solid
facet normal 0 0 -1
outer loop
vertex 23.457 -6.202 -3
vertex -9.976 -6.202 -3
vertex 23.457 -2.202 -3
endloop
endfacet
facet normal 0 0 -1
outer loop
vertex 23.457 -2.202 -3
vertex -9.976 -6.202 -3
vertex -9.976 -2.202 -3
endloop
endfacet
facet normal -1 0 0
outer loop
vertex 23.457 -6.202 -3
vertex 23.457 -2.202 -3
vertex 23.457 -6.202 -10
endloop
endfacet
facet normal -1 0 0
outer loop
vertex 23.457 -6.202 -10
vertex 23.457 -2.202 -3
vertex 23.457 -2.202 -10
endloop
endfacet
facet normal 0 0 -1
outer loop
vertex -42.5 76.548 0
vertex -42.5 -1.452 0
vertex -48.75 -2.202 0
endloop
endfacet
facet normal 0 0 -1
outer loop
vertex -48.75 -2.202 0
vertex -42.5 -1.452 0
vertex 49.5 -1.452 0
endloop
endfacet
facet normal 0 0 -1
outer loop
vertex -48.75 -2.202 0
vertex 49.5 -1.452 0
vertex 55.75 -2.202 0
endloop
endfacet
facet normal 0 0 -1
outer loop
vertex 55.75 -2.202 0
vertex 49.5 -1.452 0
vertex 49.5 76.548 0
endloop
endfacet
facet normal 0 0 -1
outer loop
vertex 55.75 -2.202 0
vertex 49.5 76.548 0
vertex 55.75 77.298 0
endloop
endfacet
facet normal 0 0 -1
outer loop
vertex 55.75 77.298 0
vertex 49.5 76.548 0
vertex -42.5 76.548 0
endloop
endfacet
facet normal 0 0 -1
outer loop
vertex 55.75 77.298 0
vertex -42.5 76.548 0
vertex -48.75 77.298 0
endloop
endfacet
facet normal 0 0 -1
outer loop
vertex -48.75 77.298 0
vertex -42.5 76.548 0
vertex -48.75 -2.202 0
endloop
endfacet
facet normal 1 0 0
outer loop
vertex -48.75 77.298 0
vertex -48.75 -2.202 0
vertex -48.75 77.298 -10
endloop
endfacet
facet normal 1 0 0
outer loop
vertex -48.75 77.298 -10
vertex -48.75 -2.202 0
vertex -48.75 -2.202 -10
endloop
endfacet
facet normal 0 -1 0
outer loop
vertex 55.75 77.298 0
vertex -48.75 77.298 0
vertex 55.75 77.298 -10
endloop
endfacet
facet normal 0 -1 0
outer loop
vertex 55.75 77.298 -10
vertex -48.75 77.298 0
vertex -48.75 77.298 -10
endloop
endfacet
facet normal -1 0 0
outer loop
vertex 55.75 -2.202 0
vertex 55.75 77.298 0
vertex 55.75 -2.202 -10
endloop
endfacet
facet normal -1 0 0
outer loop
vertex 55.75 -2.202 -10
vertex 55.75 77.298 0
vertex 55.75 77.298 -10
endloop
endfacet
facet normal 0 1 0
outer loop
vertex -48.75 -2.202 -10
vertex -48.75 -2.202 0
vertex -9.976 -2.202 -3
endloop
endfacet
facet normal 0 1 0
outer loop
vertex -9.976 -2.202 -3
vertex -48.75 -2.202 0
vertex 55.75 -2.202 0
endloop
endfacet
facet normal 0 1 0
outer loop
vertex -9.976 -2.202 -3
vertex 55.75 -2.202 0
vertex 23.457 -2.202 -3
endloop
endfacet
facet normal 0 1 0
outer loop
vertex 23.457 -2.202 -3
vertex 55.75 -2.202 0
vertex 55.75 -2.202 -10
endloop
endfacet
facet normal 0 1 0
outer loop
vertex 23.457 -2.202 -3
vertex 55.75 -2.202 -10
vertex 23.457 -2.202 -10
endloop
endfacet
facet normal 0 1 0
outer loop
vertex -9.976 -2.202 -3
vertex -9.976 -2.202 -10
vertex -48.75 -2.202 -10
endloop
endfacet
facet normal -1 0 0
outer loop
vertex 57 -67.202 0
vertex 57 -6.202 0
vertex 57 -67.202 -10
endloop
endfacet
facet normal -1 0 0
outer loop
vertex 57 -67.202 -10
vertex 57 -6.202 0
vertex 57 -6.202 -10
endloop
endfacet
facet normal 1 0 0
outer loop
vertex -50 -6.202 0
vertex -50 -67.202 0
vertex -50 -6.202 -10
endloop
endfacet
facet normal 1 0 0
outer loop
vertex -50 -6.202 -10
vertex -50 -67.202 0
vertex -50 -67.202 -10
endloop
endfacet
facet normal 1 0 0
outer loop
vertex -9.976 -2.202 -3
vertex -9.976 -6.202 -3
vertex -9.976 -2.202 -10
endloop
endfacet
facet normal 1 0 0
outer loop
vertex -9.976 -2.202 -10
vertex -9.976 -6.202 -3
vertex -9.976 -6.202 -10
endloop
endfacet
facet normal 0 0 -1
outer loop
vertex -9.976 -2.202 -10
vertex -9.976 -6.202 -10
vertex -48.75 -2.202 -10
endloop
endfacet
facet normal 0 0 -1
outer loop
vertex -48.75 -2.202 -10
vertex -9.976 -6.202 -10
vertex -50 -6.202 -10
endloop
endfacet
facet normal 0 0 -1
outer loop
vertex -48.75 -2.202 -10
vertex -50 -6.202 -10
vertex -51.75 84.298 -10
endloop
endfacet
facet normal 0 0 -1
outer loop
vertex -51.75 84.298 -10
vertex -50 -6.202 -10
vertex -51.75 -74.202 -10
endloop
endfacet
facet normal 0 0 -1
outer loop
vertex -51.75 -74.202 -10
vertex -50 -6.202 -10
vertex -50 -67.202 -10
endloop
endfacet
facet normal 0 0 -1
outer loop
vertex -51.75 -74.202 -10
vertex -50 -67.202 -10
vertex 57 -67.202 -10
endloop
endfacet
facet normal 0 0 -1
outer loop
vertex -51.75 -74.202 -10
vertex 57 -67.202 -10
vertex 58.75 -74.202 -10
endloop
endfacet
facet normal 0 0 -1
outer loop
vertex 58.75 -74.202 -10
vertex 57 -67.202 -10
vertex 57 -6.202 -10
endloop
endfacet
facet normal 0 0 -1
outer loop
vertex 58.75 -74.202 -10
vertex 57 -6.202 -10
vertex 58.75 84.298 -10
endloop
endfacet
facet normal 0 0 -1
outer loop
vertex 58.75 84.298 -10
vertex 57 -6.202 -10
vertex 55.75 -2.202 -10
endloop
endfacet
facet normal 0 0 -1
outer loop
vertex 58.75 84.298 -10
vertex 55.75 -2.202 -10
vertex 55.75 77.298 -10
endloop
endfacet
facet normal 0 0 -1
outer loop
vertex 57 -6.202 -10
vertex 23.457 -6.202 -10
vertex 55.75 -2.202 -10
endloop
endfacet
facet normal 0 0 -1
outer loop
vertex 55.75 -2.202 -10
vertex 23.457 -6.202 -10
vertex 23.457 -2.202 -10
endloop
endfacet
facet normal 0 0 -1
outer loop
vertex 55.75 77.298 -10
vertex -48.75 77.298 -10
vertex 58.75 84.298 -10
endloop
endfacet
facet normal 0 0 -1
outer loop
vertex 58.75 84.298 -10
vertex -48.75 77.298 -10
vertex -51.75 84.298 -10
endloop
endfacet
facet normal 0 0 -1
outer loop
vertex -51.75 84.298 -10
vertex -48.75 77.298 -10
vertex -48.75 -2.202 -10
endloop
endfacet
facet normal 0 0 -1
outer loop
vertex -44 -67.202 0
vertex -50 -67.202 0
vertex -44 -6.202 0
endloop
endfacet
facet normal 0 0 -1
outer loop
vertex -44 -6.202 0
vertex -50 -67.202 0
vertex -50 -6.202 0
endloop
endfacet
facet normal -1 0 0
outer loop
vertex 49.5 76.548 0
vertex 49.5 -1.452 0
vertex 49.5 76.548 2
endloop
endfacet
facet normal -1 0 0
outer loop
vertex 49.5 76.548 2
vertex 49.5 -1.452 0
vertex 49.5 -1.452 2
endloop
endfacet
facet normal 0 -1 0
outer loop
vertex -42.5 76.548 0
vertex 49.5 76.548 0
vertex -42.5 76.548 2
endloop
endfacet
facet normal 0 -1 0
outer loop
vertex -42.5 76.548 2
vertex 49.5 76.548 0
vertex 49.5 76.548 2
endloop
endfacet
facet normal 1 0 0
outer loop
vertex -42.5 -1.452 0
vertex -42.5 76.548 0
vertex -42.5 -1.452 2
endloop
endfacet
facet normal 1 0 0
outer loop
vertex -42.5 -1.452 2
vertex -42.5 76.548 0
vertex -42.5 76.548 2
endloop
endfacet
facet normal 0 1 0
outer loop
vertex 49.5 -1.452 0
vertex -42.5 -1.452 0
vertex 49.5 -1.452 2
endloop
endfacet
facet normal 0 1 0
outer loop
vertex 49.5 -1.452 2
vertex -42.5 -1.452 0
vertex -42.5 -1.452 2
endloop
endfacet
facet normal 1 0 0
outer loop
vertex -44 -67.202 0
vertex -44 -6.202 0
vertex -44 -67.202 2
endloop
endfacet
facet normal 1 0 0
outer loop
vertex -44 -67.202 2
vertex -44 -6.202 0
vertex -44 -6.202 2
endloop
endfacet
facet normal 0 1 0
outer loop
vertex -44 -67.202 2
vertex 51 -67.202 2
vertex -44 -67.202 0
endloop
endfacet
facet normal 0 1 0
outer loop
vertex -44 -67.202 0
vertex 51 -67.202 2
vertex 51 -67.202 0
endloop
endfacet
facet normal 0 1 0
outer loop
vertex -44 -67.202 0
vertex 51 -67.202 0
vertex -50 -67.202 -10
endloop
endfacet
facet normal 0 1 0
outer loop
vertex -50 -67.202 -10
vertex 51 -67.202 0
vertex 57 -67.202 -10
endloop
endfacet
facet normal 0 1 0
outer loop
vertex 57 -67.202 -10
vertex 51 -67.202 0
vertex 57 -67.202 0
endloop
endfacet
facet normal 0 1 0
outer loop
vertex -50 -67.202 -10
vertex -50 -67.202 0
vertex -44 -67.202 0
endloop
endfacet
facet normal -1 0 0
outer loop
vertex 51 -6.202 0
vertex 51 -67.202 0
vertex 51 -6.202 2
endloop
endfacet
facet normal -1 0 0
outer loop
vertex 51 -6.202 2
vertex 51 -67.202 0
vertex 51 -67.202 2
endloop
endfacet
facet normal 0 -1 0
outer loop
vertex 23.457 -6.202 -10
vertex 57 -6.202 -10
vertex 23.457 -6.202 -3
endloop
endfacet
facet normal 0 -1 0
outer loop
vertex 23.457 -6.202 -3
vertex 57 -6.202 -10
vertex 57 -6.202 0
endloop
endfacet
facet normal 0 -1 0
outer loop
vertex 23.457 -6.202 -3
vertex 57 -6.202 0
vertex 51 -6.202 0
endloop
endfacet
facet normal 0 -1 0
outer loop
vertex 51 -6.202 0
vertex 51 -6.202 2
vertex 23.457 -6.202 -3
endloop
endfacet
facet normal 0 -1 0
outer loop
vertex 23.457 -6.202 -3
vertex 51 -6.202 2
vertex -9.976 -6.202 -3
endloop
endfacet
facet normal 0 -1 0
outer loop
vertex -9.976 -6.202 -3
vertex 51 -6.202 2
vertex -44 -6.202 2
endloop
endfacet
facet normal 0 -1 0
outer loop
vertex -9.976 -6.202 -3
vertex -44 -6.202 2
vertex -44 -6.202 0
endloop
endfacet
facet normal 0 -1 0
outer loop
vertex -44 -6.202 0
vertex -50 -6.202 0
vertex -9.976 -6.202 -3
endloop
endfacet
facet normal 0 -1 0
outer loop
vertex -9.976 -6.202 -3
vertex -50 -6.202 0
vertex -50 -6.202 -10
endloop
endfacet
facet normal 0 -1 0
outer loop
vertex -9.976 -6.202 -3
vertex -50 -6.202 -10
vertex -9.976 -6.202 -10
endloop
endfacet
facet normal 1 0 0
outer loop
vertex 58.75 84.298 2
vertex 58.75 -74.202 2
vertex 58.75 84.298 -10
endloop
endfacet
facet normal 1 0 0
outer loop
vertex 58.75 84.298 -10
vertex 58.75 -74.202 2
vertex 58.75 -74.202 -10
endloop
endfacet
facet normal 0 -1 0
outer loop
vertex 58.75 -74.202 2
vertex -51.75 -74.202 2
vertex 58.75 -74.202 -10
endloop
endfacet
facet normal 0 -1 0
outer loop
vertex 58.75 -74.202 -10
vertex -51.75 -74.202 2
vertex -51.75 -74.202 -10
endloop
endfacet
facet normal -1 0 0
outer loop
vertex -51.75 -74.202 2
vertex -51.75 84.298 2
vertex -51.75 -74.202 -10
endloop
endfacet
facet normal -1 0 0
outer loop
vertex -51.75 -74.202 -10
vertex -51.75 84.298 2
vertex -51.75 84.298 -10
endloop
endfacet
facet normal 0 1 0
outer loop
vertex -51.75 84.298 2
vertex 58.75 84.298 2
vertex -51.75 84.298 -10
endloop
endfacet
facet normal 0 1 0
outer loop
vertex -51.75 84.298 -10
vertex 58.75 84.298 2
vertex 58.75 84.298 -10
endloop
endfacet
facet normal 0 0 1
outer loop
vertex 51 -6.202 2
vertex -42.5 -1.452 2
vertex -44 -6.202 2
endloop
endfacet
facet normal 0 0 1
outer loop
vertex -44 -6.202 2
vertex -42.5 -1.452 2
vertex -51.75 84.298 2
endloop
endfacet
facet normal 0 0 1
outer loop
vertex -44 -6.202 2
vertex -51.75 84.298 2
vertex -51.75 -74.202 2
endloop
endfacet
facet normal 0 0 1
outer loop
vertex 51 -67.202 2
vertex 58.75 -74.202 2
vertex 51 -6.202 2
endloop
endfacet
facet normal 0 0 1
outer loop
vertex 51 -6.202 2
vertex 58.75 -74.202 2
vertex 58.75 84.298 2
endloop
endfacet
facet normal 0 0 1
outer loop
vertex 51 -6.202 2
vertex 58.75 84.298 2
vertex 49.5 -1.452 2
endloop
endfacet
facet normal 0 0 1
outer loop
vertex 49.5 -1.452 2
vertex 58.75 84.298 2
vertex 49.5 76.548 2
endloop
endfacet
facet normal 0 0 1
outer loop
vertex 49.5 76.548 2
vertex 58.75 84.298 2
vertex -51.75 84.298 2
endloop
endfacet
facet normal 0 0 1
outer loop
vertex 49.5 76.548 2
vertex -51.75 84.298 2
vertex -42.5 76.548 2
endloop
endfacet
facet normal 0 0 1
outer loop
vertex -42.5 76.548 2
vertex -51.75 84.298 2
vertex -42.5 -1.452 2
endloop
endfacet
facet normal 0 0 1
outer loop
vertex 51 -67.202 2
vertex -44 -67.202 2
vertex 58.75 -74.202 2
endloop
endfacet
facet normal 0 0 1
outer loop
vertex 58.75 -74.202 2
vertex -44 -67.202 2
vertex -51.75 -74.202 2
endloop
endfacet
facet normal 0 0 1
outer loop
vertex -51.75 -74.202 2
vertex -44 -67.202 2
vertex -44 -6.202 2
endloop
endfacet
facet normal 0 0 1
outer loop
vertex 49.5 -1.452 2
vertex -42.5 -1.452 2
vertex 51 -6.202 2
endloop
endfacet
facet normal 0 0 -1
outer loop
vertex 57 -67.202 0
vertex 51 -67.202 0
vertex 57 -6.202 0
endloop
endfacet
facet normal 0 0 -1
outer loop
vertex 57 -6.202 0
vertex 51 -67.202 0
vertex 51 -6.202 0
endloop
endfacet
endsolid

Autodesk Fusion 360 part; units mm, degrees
sketch "Sketch1" plane through (0, 0, 0) normal (0, 0, 1) x (1, 0, 0)
  line L0 (3.5, 81.3196) -> (3.5, -80.4746) construction
  line L1 (55.75, 77.2981) -> (-48.75, 77.2981)
  line L2 (-48.75, 77.2981) -> (-48.75, -2.2019)
  line L3 (-48.75, -2.2019) -> (55.75, -2.2019)
  line L4 (55.75, -2.2019) -> (55.75, 77.2981)
  line L5 (55.75, 77.2981) -> (-48.75, -2.2019) construction
  line L6 (-48.75, 77.2981) -> (55.75, -2.2019) construction
  line L7 (-44, -6.2019) -> (51, -6.2019)
  line L8 (51, -6.2019) -> (51, -67.2019)
  line L9 (51, -67.2019) -> (-44, -67.2019)
  line L10 (-44, -67.2019) -> (-44, -6.2019)
  line L11 (-44, -6.2019) -> (51, -67.2019) construction
  line L12 (51, -6.2019) -> (-44, -67.2019) construction
  line L13 (-42.5, 76.5481) -> (49.5, 76.5481)
  line L14 (49.5, 76.5481) -> (49.5, -1.4519)
  line L15 (49.5, -1.4519) -> (-42.5, -1.4519)
  line L16 (-42.5, -1.4519) -> (-42.5, 76.5481)
  line L17 (-42.5, 76.5481) -> (49.5, -1.4519) construction
  line L18 (49.5, 76.5481) -> (-42.5, -1.4519) construction
  line L19 (57, -6.2019) -> (-50, -6.2019)
  line L20 (-50, -6.2019) -> (-50, -67.2019)
  line L21 (-50, -67.2019) -> (57, -67.2019)
  line L22 (57, -67.2019) -> (57, -6.2019)
  line L23 (57, -6.2019) -> (-50, -67.2019) construction
  line L24 (-50, -6.2019) -> (57, -67.2019) construction
  line L25 (-209.3085, -13.7554) -> (162.3486, -13.7554) construction
  line L26 (58.75, -74.2019) -> (-51.75, -74.2019)
  line L27 (-51.75, -74.2019) -> (-51.75, 84.2981)
  line L28 (-51.75, 84.2981) -> (58.75, 84.2981)
  line L29 (58.75, 84.2981) -> (58.75, -74.2019)
  line L30 (58.75, -74.2019) -> (-51.75, 84.2981) construction
  line L31 (-51.75, -74.2019) -> (58.75, 84.2981) construction
  line L32 (-9.9758, -6.2019) -> (23.4575, -6.2019)
  line L33 (23.4575, -6.2019) -> (23.4575, -1.4519)
  line L34 (23.4575, -1.4519) -> (-9.9758, -1.4519)
  line L35 (-9.9758, -1.4519) -> (-9.9758, -6.2019)
  point P0 (3.5, 37.5481)
  point P1 (3.5, -36.7019)
  point P2 (3.5, 37.5481)
  point P3 (3.5, -36.7019)
  point P4 (3.5, 5.0481)
  dimension "d11" = 104.5
  dimension "d12" = 79.5
  dimension "d13" = 95
  dimension "d14" = 61
  dimension "d15" = 92
  dimension "d16" = 78
  dimension "d17" = 107
  dimension "d18" = 61
  dimension "d19" = 74.25
  dimension "d21" = 110.5
  dimension "d22" = 158.5
  dimension "d23" = 7
extrude "Extrude1" add sketch "Sketch1" along normal blind 2 contours L1 L2 L3 L4 L13 L14 L15 L16 L33 L35 | L3 L7 L19 L32 L33 L35 | L3 L15 L33 L34 L35 | L8 L19 L21 L22 | L10 L19 L20 L21 | L26 L27 L28 L29
extrude "Extrude2" add sketch "Sketch1" against normal blind 10
extrude "Extrude3" add sketch "Sketch1" against normal blind 3 contours L3 L7 L19 L32 L33 L35
equation "screenWidth = 92 mm"
equation "screenHeight = 78 mm"
equation "solarWidth = 107 mm"
equation "solarHeight = 61 mm"
equation "solarBoardWidth = 95 mm"
equation "solarBoardOHeight = solarHeight"
equation "screenBoardWidth = 104.5 mm"
equation "screenBoardHeight = 79.5 mm"
equation "middleSpace = 4 mm"
equation "border = 3 mm"
equation "d11 = screenBoardWidth"
equation "d12 = screenBoardHeight"
equation "d13 = solarBoardWidth"
equation "d14 = solarBoardOHeight"
equation "d15 = screenWidth"
equation "d16 = screenHeight"
equation "d17 = solarWidth"
equation "d18 = solarHeight"
equation "d19 = ( ( screenBoardHeight + solarBoardOHeight ) / 2 ) + middleSpace"
equation "boardThickness = 10 mm"
equation "d21 = screenBoardWidth + ( border * 2 )"
equation "d22 = solarBoardOHeight + screenBoardHeight + middleSpace + ( borderTop * 2 )"
equation "d23 = borderTop"
equation "faceThickness = 2 mm"
equation "d25 = faceThickness"
equation "d27 = -boardThickness"
equation "borderTop = 7 mm"
